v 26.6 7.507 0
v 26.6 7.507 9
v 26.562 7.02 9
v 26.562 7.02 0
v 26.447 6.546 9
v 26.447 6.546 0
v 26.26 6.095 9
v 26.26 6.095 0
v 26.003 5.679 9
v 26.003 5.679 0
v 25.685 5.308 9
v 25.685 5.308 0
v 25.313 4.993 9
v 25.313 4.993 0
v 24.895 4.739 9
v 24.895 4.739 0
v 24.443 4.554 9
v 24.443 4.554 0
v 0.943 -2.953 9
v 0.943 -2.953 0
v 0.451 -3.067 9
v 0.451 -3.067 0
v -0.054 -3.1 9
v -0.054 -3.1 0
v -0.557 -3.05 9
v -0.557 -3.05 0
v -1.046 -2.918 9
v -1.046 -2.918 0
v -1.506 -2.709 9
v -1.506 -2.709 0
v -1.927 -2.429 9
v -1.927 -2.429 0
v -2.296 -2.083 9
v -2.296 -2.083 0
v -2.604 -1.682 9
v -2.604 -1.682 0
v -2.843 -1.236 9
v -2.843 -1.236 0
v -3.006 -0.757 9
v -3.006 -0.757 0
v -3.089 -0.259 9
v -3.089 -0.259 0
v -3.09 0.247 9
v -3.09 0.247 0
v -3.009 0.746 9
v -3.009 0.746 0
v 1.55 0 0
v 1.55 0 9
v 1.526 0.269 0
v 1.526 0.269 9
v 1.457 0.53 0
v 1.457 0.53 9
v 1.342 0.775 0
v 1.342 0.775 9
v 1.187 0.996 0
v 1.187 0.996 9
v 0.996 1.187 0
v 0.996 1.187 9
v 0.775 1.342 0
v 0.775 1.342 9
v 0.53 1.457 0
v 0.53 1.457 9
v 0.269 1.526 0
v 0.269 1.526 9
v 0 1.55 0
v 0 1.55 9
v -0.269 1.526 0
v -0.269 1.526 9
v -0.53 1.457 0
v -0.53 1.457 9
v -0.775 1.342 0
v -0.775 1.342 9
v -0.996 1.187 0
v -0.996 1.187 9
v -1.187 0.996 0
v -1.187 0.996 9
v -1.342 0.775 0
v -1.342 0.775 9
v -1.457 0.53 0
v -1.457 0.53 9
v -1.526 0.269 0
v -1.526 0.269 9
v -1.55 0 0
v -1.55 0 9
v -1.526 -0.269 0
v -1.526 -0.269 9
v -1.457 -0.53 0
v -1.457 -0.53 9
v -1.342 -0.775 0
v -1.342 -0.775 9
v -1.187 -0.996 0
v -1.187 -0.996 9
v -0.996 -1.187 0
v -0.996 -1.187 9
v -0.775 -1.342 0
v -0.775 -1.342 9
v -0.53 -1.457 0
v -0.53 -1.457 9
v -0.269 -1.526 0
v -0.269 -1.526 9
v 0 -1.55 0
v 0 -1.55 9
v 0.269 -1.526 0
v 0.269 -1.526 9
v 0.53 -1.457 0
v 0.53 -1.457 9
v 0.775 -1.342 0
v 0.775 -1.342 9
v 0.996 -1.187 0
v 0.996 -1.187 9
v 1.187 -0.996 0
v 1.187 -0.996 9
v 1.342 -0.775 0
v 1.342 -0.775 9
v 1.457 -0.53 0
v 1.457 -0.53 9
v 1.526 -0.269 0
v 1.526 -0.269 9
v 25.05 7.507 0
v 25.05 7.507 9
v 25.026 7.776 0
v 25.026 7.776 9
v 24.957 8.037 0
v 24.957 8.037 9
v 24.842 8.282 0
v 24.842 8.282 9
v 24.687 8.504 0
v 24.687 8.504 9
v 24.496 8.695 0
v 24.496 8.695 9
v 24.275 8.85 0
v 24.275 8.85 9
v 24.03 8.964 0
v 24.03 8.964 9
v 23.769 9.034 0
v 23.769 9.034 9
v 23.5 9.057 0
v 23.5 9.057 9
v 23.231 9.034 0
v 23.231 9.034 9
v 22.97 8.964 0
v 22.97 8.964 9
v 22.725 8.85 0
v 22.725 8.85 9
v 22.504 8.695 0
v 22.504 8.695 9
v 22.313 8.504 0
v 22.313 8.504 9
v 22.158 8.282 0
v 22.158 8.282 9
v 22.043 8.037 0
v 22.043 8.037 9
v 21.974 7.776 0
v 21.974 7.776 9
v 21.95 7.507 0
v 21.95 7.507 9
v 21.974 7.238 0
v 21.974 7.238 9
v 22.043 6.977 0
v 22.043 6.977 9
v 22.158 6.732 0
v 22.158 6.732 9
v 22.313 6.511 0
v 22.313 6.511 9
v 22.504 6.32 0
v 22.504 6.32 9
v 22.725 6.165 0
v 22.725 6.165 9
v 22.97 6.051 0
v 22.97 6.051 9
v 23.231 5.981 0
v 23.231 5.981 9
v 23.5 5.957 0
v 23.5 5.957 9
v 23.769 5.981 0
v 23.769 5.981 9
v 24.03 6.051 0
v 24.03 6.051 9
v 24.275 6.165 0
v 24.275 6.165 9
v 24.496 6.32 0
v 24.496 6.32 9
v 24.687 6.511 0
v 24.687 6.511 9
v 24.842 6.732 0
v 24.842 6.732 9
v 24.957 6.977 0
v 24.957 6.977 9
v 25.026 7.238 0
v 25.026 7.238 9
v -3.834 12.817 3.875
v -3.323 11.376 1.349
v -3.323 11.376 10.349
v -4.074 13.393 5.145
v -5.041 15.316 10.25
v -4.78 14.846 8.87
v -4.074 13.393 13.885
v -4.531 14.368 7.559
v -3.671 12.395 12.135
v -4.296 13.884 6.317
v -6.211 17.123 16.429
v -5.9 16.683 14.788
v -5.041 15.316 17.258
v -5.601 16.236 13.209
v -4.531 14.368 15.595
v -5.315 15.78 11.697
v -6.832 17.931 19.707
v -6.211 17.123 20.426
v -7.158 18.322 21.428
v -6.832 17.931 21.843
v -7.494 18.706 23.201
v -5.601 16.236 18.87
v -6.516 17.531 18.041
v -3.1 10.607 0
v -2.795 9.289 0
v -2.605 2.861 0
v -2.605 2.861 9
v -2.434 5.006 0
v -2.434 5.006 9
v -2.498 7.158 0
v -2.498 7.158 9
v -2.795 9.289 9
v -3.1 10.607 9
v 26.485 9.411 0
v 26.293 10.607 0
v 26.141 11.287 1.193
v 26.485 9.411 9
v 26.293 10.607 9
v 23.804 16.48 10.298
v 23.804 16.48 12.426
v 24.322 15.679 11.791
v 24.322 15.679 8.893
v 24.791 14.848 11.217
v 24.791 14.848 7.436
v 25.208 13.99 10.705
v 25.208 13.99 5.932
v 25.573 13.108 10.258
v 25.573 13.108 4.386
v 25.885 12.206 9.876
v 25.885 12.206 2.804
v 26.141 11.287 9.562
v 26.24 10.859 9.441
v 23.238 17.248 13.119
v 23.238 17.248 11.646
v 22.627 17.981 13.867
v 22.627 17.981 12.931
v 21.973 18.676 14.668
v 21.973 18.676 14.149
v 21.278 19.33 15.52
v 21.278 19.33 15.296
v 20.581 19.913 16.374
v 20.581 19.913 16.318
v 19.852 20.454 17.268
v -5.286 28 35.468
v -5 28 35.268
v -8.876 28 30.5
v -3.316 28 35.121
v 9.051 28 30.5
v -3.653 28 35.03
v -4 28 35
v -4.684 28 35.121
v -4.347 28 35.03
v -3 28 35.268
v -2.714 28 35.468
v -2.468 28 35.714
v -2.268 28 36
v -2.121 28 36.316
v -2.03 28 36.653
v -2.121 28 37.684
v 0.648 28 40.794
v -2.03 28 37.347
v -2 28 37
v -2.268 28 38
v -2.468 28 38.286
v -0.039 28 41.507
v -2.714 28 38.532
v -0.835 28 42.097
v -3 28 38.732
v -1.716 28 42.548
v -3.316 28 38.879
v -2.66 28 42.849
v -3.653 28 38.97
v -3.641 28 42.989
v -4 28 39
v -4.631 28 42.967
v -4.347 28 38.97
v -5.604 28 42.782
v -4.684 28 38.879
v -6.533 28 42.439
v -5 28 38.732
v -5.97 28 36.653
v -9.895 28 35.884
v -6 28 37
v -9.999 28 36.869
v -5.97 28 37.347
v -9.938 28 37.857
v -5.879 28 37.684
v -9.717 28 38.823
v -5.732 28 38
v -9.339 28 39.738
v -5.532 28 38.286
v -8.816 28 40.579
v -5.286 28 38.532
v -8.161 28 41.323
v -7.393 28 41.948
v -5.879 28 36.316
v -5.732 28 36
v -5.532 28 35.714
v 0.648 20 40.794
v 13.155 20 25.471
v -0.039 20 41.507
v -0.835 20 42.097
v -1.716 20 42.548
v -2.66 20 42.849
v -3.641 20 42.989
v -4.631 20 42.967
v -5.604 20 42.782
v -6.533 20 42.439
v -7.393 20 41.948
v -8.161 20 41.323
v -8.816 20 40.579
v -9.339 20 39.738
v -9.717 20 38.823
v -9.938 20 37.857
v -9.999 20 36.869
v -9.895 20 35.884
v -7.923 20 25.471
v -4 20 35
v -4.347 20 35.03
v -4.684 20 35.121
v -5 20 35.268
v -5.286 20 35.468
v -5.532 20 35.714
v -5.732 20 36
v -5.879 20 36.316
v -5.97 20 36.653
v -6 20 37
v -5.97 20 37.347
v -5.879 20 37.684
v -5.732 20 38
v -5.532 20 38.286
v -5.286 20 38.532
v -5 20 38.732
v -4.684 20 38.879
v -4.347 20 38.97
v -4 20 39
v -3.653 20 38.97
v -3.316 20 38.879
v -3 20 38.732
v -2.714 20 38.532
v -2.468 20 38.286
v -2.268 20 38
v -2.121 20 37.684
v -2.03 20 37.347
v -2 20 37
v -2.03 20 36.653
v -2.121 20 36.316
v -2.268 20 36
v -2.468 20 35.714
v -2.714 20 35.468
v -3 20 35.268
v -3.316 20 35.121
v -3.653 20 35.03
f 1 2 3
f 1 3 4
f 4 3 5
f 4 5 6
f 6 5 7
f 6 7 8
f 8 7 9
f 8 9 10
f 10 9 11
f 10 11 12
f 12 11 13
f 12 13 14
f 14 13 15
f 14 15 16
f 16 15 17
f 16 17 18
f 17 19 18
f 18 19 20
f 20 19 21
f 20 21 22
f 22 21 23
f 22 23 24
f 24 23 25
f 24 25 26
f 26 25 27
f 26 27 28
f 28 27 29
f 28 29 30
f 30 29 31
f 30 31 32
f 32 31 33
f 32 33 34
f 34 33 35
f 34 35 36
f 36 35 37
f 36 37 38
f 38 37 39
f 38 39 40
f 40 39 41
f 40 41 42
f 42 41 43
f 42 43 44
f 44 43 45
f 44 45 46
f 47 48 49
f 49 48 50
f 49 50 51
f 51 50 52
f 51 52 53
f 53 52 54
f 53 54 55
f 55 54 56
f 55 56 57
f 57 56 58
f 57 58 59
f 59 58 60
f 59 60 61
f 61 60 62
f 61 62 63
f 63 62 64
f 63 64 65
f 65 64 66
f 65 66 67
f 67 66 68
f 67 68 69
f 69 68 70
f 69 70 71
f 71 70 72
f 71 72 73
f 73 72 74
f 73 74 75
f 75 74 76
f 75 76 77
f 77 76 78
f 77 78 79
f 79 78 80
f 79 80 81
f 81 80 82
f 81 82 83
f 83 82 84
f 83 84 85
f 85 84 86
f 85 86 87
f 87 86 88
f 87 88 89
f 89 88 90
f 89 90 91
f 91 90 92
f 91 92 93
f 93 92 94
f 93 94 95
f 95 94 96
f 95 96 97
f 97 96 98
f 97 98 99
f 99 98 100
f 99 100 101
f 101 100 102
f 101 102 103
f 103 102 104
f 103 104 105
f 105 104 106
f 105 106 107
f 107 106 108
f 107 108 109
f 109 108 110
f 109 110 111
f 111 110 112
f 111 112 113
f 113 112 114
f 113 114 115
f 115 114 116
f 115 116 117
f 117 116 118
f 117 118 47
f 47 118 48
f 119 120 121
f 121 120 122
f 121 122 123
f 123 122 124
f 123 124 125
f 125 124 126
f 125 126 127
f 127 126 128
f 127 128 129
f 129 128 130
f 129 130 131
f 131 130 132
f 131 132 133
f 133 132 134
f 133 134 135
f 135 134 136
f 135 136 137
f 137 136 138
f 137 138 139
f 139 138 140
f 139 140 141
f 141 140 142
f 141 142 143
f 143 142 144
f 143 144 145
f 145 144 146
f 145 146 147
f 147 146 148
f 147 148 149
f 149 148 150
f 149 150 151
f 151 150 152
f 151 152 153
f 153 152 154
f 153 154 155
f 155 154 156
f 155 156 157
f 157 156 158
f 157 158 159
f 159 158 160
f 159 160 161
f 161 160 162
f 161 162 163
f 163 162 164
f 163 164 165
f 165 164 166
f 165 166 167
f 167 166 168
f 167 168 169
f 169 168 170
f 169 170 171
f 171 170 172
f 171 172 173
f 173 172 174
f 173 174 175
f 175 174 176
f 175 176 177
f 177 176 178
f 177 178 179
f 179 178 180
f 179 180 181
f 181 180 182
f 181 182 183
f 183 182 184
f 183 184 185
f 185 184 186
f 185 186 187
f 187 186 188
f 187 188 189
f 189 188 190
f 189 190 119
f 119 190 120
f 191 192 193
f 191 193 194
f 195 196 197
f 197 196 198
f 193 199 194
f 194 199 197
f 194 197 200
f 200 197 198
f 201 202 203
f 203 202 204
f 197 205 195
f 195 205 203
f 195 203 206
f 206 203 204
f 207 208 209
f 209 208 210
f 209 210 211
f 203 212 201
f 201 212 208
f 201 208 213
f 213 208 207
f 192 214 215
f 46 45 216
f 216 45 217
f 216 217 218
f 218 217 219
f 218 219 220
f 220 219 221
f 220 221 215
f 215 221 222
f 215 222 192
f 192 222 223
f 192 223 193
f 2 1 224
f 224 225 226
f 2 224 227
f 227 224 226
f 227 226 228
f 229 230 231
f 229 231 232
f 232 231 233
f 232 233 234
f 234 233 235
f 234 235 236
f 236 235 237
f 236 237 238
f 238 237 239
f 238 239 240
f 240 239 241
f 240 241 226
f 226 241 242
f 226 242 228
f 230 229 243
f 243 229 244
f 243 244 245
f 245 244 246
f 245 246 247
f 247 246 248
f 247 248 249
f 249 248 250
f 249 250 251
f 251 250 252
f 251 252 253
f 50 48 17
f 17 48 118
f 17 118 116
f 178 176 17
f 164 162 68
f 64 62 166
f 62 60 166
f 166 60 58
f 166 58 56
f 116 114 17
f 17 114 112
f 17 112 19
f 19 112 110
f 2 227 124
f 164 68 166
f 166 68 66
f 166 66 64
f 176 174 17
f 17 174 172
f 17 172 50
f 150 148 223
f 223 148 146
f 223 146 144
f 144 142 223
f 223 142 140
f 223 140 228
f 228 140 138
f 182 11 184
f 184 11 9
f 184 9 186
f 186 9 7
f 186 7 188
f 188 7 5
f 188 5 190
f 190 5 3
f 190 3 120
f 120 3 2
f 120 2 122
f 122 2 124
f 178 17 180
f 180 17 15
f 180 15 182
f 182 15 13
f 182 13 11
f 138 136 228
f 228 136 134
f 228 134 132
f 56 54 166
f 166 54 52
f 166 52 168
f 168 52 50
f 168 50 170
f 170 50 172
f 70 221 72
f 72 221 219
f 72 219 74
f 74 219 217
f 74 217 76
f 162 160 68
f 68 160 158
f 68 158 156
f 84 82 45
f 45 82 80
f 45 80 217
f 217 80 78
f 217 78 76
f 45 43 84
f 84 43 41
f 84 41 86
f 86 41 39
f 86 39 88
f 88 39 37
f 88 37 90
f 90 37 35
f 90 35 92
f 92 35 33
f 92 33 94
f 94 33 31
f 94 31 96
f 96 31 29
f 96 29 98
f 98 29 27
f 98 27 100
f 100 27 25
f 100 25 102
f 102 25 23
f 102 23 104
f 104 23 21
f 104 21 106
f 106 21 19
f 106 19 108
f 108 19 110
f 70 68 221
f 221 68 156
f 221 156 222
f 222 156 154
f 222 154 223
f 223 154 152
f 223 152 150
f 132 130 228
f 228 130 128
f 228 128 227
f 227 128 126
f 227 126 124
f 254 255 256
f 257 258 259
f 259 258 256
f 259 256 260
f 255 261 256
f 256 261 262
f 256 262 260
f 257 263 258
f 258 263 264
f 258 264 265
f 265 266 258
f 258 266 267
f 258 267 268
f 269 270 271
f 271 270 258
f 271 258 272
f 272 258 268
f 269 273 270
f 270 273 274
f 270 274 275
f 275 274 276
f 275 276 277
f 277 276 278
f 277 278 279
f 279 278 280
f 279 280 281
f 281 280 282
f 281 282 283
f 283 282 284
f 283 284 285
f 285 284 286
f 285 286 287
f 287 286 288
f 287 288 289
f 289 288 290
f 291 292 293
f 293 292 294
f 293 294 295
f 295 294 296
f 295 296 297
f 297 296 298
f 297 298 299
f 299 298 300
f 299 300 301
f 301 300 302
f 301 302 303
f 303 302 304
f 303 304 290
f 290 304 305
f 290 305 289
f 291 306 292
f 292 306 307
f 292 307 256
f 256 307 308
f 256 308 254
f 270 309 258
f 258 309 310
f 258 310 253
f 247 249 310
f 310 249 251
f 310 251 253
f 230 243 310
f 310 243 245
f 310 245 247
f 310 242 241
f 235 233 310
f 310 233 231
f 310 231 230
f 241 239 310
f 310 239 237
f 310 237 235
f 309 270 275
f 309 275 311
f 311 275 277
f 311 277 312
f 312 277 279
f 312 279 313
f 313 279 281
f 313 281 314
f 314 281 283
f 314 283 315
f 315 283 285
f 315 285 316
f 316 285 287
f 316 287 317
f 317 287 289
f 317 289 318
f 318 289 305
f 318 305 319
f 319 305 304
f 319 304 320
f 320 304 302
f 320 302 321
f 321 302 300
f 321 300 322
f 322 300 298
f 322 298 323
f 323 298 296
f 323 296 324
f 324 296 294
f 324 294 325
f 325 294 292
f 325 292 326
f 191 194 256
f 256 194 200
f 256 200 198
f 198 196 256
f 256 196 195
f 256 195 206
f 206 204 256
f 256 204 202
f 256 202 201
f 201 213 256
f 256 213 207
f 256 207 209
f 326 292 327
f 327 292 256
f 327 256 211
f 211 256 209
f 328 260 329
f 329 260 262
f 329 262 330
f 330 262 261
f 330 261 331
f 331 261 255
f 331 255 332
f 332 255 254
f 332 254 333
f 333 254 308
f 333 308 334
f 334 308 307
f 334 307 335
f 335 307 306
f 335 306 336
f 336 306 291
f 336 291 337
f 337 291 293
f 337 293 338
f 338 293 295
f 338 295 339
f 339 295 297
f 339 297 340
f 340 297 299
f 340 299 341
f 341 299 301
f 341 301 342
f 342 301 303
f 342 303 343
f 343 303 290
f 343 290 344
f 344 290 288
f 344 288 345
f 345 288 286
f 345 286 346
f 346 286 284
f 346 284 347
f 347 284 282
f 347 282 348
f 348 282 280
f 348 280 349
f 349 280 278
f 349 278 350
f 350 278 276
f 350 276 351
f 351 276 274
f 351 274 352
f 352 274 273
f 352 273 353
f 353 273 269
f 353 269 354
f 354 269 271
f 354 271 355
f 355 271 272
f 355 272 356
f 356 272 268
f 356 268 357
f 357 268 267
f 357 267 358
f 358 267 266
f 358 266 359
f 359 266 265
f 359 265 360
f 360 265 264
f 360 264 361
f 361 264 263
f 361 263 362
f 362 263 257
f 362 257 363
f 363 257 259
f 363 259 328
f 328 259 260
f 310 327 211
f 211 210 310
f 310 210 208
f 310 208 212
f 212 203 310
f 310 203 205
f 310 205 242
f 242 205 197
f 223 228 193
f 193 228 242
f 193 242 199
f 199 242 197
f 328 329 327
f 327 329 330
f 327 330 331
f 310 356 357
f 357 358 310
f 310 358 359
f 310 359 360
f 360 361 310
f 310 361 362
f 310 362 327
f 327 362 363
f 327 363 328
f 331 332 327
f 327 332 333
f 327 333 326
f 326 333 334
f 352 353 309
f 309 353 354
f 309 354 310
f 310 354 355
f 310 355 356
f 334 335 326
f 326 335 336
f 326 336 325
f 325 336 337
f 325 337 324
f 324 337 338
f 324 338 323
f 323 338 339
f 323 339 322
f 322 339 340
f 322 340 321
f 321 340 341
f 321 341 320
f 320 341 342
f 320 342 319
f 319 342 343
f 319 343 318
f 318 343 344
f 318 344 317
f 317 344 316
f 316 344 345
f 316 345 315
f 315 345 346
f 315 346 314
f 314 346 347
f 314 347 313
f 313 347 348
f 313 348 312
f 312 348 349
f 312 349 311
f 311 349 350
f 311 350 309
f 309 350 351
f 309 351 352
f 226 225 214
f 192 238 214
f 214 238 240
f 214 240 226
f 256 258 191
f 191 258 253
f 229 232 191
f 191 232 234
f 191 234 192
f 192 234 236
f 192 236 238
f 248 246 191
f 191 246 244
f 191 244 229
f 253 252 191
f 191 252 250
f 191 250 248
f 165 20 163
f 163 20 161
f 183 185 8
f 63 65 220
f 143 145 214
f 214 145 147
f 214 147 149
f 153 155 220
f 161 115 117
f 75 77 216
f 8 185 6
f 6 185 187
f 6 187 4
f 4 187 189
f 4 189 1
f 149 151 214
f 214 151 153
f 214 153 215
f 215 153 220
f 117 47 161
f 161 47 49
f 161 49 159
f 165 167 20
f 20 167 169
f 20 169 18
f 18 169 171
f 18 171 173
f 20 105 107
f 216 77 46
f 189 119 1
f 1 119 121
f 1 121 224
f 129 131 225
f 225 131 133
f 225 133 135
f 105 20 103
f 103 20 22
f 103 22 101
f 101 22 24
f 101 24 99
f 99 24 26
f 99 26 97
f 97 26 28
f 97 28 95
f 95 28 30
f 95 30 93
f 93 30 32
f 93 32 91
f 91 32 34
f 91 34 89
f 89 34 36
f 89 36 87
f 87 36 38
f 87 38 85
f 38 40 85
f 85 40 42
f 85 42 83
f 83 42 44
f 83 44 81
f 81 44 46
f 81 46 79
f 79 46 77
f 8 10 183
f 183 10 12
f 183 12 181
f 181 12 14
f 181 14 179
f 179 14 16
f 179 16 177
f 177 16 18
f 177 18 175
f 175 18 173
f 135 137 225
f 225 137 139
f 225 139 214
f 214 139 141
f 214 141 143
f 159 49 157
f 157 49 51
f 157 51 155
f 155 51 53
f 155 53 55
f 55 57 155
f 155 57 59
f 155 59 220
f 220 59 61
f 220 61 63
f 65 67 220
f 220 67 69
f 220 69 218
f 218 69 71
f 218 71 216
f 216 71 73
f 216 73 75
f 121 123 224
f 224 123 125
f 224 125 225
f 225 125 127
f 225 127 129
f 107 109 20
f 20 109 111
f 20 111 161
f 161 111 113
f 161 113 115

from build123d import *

# Parameters (mm, degrees)
SKETCH1_R            = 1.55
BOSS_EXTRUDE1_DEPTH  = 9
BOSS_EXTRUDE12_DEPTH = 17.39274351
SKETCH7_3_OUTSIDE_W  = 51.494
SKETCH7_3_OUTSIDE_H  = 57.894
SKETCH7_3_OUTSIDE_R  = 2
CUT_EXTRUDE3_DEPTH   = 17.39274351
CUT_EXTRUDE2_DEPTH   = 50
CUT_EXTRUDE5_DEPTH   = 58.797577804
CUT_EXTRUDE7_DEPTH   = 58.797577804
SKETCH15_W           = 41.045636652
SKETCH15_H           = 32.401588668
CUT_EXTRUDE8_DEPTH   = 58.797577804


with BuildPart() as part:
    # Sketch1 → Boss-Extrude1 (new body)
    with BuildSketch(Plane.XY):
        with BuildLine():
            Line((26.6, 7.50725649), (26.6, 10.60725649))
            Line((26.6, 10.60725649), (-3.1, 10.60725649))
            Line((-3.1, 10.60725649), (-3.1, 0))
            ThreePointArc((-3.1, 0), (-1.828333755, -2.503436774), (0.943352052, -2.952979327))
            Line((0.943352052, -2.952979327), (24.443352052, 4.554277162))
            ThreePointArc((24.443352052, 4.554277162), (26.003436774, 5.678922735), (26.6, 7.50725649))
        make_face()
        Circle(SKETCH1_R, mode=Mode.SUBTRACT)
        with Locations((23.5, 7.50725649)):
            Circle(SKETCH1_R, mode=Mode.SUBTRACT)
    extrude(amount=-BOSS_EXTRUDE1_DEPTH)

    # Sketch7 → Boss-Extrude12 (add)
    with BuildSketch(Plane(origin=(0, 28, 0), x_dir=(1, 0, 0), z_dir=(0, 1, 0))):
        with BuildLine():
            Line((-3.1, 0), (-9.895228332, 35.883629581))
            ThreePointArc((-9.895228332, 35.883629581), (-6.533149103, 42.439039954), (0.648143683, 40.794042739))
            Line((0.648143683, 40.794042739), (26.6, 9))
            Line((26.6, 9), (26.6, 0))
            Line((26.6, 0), (-3.1, 0))
        make_face()
    extrude(amount=-BOSS_EXTRUDE12_DEPTH)

    # Sketch7<3> outside → Cut-Extrude3 (cut)
    # profile 1 of 2: a face of its own
    with BuildSketch(Plane(origin=(0, 28, 0), x_dir=(1, 0, 0), z_dir=(0, 1, 0))):
        with Locations((8.3, 21.5)):
            Rectangle(SKETCH7_3_OUTSIDE_W, SKETCH7_3_OUTSIDE_H)
        with BuildLine():
            Line((-3.1, 0), (-9.895228332, 35.883629581))
            ThreePointArc((-9.895228332, 35.883629581), (-6.533149103, 42.439039954), (0.648143683, 40.794042739))
            Line((0.648143683, 40.794042739), (26.6, 9))
            Line((26.6, 9), (26.6, 0))
            Line((26.6, 0), (-3.1, 0))
        make_face(mode=Mode.SUBTRACT)
    # profile 2 of 2: a face of its own
    with BuildSketch(Plane(origin=(0, 28, 0), x_dir=(1, 0, 0), z_dir=(0, 1, 0))):
        with Locations(Location((-4, 37, 0), (0, 0, 270))):
            Circle(SKETCH7_3_OUTSIDE_R)
    extrude(amount=-CUT_EXTRUDE3_DEPTH, mode=Mode.SUBTRACT)

    # Sketch8 → Cut-Extrude2 (cut, symmetric)
    with BuildSketch(Plane(origin=(0, 0, 0), x_dir=(0, 0, -1), z_dir=(1, 0, 0))):
        Polygon((0, 10.60725649), (30.5, 28), (0, 28), align=None)
        Polygon((43, 20), (25.471160912, 20), (9, 10.60725649), (43, 10.60725649), align=None)
    extrude(amount=CUT_EXTRUDE2_DEPTH, both=True, mode=Mode.SUBTRACT)

    # Sketch12 → Cut-Extrude5 (cut, through all)
    with BuildSketch(Plane.XY):
        with BuildLine():
            Line((-3.1, 0), (-7.493582912, 18.705566962))
            ThreePointArc((-7.493582912, 18.705566962), (-3.016370904, 10.284014045), (-3.008825552, 0.746303421))
            ThreePointArc((-3.008825552, 0.746303421), (-3.077121968, 0.375926049), (-3.1, 0))
        make_face()
    extrude(amount=-CUT_EXTRUDE5_DEPTH, mode=Mode.SUBTRACT)

    # Sketch14 → Cut-Extrude7 (cut, through all)
    with BuildSketch(Plane.XY):
        with BuildLine():
            Line((19.851500316, 20.45422786), (26.6, 15.73954146))
            Line((26.6, 15.73954146), (26.6, 7.50725649))
            ThreePointArc((26.6, 7.50725649), (24.811622249, 14.807364633), (19.851500316, 20.45422786))
        make_face()
    extrude(amount=-CUT_EXTRUDE7_DEPTH, mode=Mode.SUBTRACT)

    # Mirror9: part across plane


with BuildPart() as part_1:
    add(part.part)
    add(part.part.mirror(Plane.XY))

    # Sketch15 → Cut-Extrude8 (cut, through all)
    with BuildSketch(Plane.XY):
        with Locations((9.251388929, 12.77619049)):
            Rectangle(SKETCH15_W, SKETCH15_H)
    extrude(amount=-CUT_EXTRUDE8_DEPTH, mode=Mode.SUBTRACT)


solid = part_1.part
